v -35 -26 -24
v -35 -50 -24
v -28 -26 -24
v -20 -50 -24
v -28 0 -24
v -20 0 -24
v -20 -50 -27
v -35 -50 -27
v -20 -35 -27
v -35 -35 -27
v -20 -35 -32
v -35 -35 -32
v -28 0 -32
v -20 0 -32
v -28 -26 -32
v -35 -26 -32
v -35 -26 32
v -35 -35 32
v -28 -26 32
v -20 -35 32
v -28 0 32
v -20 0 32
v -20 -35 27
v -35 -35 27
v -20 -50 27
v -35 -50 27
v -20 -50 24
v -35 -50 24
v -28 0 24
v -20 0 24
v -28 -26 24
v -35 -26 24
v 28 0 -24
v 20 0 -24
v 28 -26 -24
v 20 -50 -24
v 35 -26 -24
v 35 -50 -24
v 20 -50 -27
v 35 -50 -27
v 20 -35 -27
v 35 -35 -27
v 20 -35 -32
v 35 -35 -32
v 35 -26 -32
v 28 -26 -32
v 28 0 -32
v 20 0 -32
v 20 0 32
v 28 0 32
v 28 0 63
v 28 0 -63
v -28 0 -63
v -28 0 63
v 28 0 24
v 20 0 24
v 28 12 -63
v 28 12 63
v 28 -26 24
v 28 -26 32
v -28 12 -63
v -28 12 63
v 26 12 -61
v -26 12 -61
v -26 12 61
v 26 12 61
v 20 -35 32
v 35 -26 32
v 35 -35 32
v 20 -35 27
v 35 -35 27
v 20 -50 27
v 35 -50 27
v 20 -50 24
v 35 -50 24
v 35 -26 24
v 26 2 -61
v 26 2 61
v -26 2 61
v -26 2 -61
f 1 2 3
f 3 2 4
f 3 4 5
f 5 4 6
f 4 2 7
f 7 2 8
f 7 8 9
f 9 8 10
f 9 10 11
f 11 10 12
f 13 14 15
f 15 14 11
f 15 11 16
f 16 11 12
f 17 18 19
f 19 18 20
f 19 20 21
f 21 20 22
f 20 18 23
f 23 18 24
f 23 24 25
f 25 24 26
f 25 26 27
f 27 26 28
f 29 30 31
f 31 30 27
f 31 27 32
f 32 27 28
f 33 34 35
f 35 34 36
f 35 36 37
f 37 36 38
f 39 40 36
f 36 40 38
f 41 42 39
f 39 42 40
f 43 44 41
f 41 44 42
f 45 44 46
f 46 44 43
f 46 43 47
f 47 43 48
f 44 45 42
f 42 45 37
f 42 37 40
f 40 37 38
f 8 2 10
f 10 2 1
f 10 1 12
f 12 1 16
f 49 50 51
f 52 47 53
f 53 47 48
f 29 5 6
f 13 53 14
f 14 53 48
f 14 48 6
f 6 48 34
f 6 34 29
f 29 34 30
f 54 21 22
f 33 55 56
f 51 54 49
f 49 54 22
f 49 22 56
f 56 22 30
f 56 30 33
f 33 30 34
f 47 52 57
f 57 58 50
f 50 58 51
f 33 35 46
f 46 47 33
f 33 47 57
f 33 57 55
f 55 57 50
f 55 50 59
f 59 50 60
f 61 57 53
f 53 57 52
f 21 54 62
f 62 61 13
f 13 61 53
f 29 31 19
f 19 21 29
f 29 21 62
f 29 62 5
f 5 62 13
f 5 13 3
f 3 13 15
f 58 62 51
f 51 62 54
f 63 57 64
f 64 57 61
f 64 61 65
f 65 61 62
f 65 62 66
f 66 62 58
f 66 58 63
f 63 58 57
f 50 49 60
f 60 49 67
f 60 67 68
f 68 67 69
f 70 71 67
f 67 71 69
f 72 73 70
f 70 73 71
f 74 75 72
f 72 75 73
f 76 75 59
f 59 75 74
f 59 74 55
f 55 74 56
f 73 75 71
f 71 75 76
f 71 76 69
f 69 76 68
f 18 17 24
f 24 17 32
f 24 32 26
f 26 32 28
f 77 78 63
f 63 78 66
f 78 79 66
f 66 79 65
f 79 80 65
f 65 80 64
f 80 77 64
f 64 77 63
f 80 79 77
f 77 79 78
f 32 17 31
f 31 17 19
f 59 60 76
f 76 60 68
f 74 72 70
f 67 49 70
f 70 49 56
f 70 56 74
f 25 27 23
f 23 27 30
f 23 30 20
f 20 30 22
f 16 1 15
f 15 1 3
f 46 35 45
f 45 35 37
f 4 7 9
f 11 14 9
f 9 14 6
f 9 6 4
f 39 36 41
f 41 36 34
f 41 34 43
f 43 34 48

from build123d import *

# Parameters (mm, degrees)
BOSS_EXTRUDE1_DEPTH     = 35
BOSS_EXTRUDE1_2_DEPTH   = 35
SKETCH4_W               = 56
SKETCH4_H               = 126
BOSS_EXTRUDE2_DEPTH     = 12
SKETCH5_W               = 52
SKETCH5_H               = 122
CUT_EXTRUDE1_DEPTH      = 10
CUT_EXTRUDE2_DEPTH      = 113.915897906
CUT_EXTRUDE2_DEPTH_BACK = 113.915897906
SKETCH6_W               = 40
SKETCH6_H               = 50
SKETCH6_W_2             = 7
SKETCH6_H_2             = 26


with BuildPart() as part:
    # Sketch3 → Boss-Extrude1 (new, symmetric)
    with BuildSketch(Plane(origin=(0, 0, 0), x_dir=(0, 0, -1), z_dir=(1, 0, 0))):
        Polygon((24, 0), (24, -50), (27, -50), (27, -35), (32, -35), (32, 0), align=None)
    extrude(amount=BOSS_EXTRUDE1_DEPTH, both=True)



with BuildPart() as body_2:
    # Sketch3 → Boss-Extrude1 2 (new, symmetric)
    with BuildSketch(Plane(origin=(0, 0, 0), x_dir=(0, 0, -1), z_dir=(1, 0, 0))):
        Polygon((-32, 0), (-24, 0), (-24, -50), (-27, -50), (-27, -35), (-32, -35), align=None)
    extrude(amount=BOSS_EXTRUDE1_2_DEPTH, both=True)


with BuildPart() as part_1:
    add(part.part)

    add(body_2.part)  # Boss-Extrude2 merges body 2
    # Sketch4 → Boss-Extrude2 (add)
    with BuildSketch(Plane(origin=(0, 0, 0), x_dir=(1, 0, 0), z_dir=(0, 1, 0))):
        Rectangle(SKETCH4_W, SKETCH4_H)
    extrude(amount=BOSS_EXTRUDE2_DEPTH)

    # Sketch5 → Cut-Extrude1 (cut)
    with BuildSketch(Plane(origin=(0, 12, 0), x_dir=(1, 0, 0), z_dir=(0, 1, 0))):
        Rectangle(SKETCH5_W, SKETCH5_H)
    extrude(amount=-CUT_EXTRUDE1_DEPTH, mode=Mode.SUBTRACT)

    # Sketch6 → Cut-Extrude2 (cut, two sides: drawn at the far end of the back side and taken through both)
    with BuildSketch(Plane.XY.offset(32).offset(-CUT_EXTRUDE2_DEPTH_BACK)):
        with Locations((0, -25)):
            Rectangle(SKETCH6_W, SKETCH6_H)
        with Locations((-31.5, -13)):
            Rectangle(SKETCH6_W_2, SKETCH6_H_2)
        with Locations((31.5, -13)):
            Rectangle(SKETCH6_W_2, SKETCH6_H_2)
    extrude(amount=CUT_EXTRUDE2_DEPTH + CUT_EXTRUDE2_DEPTH_BACK, mode=Mode.SUBTRACT)


solid = part_1.part
